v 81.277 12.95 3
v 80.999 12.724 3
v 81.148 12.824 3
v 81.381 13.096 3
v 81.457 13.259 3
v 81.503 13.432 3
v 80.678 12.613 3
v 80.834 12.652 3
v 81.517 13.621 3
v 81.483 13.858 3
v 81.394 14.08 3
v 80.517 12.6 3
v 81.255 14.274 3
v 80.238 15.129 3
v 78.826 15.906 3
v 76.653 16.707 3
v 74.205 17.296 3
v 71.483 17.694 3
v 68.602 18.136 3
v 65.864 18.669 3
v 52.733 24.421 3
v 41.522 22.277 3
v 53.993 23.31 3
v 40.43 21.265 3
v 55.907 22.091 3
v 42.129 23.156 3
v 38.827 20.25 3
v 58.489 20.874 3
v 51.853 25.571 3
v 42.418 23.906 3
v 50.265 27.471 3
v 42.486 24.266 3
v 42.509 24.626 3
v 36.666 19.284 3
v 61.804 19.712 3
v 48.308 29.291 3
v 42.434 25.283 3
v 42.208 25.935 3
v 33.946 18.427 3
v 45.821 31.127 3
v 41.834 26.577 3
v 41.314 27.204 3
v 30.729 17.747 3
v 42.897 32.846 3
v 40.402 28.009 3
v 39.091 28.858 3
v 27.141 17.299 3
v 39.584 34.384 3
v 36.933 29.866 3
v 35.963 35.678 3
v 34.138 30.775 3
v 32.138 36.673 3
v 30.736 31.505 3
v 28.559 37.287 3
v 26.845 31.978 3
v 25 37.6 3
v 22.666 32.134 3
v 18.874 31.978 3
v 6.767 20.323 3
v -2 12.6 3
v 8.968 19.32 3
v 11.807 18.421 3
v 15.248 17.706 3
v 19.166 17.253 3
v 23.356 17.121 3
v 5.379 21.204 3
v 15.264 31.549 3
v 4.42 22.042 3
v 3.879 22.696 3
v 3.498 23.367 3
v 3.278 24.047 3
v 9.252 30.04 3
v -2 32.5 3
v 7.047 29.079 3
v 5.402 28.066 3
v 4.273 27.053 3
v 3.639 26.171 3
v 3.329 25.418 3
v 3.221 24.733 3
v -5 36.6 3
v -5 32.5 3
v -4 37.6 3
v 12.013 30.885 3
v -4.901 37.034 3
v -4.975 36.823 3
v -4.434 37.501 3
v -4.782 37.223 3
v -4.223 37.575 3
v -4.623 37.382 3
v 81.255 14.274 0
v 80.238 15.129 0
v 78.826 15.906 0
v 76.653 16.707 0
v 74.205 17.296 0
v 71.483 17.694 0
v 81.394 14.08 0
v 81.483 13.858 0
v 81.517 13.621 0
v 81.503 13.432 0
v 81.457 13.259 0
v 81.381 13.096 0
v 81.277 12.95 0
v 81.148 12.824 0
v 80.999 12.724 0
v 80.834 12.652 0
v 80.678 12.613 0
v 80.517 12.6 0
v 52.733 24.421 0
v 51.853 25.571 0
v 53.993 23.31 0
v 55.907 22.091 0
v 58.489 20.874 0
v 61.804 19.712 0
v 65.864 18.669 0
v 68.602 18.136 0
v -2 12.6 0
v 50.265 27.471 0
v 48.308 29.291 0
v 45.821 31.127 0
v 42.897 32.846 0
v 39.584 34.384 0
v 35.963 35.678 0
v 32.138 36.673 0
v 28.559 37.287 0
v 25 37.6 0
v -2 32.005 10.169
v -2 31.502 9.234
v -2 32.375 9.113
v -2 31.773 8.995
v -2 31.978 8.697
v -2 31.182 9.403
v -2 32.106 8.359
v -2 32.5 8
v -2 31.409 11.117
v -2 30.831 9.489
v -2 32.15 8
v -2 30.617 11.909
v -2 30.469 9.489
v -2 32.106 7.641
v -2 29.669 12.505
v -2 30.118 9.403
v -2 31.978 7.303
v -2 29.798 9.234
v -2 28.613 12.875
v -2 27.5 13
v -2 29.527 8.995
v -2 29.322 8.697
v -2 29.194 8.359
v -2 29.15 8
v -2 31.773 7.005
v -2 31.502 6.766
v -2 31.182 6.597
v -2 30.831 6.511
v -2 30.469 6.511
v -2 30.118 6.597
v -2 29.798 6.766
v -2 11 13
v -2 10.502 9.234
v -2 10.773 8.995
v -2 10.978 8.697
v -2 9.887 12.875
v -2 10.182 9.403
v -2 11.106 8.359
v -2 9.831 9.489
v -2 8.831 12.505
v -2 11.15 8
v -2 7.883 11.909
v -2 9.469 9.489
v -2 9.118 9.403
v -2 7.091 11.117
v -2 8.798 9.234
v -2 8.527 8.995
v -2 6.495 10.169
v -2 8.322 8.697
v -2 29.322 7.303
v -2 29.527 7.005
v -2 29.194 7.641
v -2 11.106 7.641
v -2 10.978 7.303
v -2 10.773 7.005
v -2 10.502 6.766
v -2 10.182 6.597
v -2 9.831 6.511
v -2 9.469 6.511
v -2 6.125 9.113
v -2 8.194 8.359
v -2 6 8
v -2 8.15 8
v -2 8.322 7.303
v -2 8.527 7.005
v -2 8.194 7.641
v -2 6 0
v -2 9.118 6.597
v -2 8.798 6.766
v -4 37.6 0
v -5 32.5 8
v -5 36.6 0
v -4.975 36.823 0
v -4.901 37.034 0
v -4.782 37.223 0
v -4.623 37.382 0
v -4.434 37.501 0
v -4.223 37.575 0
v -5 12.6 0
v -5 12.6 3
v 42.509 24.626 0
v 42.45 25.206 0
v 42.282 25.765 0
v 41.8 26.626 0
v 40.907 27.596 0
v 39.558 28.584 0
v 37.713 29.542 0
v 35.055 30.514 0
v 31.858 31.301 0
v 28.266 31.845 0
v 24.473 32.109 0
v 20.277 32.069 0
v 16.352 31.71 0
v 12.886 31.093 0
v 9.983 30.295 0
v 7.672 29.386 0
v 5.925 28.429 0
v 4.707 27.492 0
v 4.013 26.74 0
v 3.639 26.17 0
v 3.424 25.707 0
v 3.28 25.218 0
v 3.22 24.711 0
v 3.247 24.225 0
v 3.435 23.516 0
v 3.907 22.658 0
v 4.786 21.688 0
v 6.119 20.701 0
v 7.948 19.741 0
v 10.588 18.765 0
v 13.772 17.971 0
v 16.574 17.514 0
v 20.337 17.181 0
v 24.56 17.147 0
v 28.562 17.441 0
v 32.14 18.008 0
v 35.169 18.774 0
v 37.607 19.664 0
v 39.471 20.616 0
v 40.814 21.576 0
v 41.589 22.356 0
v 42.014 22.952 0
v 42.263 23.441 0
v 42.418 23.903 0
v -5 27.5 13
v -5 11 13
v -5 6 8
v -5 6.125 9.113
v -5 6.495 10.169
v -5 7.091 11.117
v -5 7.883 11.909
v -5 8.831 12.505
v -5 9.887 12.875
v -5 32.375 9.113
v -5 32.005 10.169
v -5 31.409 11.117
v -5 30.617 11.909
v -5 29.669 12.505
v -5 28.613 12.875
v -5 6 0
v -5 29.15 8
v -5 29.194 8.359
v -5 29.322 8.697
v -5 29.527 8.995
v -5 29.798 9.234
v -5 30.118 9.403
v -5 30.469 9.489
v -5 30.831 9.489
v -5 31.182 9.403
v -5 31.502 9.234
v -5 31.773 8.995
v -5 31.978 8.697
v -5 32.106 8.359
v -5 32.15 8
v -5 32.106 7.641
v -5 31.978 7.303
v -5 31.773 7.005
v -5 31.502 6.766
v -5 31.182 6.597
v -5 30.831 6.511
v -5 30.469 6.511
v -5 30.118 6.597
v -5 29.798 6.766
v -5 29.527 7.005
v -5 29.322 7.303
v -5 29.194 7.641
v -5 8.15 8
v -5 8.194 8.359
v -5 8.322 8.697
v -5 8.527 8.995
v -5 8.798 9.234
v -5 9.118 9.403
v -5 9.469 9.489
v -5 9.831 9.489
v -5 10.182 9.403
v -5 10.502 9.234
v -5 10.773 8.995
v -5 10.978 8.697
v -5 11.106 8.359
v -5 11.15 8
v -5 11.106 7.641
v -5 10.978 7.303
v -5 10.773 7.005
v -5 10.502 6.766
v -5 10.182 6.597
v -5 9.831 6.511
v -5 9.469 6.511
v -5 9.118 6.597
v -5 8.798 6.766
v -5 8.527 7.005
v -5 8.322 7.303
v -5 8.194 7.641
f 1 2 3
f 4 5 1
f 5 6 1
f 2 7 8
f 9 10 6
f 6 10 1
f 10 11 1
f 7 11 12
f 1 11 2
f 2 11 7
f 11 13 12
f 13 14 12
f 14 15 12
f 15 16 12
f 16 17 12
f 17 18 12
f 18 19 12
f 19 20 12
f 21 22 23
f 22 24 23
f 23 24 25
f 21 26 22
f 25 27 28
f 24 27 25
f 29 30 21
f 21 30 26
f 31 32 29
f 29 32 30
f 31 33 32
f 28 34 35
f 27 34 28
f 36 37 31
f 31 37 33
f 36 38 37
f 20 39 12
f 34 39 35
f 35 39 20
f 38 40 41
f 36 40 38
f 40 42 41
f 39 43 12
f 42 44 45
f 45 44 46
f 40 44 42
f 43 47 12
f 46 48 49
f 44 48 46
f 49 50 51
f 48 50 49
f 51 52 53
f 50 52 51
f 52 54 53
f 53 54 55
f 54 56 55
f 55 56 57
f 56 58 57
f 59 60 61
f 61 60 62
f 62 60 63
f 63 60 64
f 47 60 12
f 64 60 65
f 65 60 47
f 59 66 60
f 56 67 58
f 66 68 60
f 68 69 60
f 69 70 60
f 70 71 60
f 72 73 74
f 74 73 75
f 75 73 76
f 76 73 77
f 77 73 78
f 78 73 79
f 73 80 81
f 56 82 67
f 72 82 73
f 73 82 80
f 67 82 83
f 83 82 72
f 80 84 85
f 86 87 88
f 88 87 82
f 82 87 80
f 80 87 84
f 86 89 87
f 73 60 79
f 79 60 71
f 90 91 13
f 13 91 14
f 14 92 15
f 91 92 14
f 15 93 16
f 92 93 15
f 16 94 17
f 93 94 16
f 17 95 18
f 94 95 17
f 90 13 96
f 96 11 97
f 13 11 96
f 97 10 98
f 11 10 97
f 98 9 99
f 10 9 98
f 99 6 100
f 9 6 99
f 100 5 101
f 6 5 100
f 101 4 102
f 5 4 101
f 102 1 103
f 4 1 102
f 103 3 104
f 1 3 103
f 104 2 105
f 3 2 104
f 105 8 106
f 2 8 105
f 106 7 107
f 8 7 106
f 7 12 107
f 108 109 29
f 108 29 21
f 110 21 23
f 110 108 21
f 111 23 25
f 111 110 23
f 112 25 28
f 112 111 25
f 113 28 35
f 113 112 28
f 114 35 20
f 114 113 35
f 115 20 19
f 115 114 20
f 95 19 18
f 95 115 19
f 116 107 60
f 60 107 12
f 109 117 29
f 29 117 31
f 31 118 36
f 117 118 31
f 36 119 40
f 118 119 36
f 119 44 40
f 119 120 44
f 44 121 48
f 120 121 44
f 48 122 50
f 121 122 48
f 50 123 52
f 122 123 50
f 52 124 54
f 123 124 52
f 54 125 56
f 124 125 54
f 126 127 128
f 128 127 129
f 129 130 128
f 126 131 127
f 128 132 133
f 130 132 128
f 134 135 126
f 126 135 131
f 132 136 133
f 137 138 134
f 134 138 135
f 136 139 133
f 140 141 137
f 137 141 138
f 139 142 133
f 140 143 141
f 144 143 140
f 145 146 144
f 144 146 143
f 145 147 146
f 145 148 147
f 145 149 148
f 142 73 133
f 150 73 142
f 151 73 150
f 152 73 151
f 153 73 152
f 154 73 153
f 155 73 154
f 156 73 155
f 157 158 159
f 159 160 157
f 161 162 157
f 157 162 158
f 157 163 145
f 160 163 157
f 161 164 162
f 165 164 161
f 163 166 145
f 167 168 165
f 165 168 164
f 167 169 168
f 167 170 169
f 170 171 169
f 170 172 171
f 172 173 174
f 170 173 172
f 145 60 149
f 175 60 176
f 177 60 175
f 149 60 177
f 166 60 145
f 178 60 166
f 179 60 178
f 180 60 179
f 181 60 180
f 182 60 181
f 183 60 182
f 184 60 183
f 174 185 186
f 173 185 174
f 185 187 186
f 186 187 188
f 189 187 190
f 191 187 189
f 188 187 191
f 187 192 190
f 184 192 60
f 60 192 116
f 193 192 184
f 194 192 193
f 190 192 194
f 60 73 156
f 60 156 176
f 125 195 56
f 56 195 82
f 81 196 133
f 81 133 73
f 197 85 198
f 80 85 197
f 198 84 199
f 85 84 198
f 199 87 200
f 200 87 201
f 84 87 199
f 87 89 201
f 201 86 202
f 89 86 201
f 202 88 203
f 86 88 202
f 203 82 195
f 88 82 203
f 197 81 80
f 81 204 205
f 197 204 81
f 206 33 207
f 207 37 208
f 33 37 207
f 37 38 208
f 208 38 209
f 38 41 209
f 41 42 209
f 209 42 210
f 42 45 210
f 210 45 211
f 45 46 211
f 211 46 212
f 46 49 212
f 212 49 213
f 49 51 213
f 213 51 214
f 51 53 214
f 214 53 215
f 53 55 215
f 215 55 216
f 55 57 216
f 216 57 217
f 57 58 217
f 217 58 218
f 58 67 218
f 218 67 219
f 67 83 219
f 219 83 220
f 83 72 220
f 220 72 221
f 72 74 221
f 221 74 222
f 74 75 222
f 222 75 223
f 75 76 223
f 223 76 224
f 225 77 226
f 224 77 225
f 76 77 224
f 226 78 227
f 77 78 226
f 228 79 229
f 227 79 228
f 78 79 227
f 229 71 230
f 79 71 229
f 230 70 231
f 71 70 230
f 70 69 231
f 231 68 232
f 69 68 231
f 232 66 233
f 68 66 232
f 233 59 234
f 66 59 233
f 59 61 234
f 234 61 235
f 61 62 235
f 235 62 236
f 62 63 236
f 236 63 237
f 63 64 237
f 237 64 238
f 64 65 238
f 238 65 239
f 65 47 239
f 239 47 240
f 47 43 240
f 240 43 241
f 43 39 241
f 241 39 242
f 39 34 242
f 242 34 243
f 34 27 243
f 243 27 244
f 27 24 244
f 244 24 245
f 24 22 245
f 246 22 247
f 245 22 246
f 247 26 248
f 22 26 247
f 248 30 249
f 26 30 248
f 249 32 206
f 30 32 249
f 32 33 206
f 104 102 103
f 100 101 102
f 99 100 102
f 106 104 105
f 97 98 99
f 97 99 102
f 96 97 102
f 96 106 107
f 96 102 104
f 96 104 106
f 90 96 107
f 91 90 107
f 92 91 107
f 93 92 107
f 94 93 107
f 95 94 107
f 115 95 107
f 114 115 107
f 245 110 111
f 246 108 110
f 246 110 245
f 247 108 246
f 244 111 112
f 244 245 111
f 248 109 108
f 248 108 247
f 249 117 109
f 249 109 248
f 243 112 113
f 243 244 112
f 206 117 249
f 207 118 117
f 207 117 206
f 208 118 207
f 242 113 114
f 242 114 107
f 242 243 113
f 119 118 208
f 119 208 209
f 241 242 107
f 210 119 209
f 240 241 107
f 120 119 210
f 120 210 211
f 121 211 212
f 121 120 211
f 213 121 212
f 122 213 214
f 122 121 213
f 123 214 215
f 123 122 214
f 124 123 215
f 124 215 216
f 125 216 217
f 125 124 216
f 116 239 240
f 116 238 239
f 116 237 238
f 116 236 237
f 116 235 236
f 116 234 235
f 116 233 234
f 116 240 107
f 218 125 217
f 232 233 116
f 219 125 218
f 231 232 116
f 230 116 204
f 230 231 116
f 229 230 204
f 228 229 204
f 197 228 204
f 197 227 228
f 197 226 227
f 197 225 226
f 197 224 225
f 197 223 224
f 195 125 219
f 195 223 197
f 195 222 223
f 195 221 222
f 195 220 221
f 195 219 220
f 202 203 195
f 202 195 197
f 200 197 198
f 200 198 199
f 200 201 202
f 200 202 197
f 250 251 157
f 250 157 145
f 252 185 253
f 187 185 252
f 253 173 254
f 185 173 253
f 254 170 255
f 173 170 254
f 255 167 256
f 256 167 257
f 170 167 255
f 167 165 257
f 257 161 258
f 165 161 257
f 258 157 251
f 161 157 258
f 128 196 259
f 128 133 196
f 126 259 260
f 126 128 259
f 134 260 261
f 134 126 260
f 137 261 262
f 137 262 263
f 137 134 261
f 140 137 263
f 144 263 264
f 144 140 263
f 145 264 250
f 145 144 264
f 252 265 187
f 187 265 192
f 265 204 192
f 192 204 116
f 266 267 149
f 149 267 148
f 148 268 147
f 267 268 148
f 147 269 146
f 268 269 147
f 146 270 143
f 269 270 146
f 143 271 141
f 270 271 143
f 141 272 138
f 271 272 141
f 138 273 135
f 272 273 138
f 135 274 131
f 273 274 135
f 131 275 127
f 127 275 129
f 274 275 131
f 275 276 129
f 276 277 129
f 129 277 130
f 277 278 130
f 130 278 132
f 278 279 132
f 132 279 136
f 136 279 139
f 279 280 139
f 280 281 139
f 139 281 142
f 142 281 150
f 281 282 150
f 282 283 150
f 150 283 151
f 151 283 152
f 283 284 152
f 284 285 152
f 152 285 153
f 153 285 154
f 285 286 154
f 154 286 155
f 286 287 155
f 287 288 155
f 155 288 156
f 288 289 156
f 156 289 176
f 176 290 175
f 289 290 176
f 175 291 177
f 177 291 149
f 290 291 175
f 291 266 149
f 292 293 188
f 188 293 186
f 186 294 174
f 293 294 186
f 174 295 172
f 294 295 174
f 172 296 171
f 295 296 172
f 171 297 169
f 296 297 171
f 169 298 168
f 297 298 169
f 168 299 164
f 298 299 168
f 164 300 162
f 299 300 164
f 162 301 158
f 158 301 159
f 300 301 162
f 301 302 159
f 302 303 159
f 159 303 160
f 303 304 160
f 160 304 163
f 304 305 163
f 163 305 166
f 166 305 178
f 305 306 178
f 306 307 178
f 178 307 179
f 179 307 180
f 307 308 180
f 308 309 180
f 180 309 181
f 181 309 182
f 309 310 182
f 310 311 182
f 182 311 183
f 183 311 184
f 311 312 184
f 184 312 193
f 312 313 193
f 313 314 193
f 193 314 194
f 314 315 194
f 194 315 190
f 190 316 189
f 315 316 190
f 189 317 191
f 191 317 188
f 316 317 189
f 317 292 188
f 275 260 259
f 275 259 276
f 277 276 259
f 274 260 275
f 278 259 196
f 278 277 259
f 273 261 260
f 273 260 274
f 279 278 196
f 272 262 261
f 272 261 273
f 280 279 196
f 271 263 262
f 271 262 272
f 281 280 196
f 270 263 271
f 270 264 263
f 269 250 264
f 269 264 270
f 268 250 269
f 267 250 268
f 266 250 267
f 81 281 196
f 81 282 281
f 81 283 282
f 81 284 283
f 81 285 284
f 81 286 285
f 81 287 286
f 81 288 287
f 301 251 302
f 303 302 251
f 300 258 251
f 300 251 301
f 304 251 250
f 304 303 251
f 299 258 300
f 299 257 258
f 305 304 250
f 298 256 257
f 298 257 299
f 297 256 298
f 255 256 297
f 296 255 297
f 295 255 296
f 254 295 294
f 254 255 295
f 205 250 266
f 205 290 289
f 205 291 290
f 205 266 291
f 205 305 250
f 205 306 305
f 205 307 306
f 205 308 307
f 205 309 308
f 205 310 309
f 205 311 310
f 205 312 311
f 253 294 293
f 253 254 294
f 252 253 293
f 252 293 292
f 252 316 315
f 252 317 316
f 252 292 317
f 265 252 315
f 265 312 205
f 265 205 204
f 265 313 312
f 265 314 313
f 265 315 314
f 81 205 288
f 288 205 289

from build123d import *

# Parameters (mm, degrees)
PAD_DEPTH       = 3
PAD001_DEPTH    = 3
SKETCH002_R     = 1.5
POCKET_DEPTH    = 87.001
FILLET_R        = 5
FILLET001_R     = 1
FILLET002_R     = 1
POCKET001_DEPTH = 3.001


with BuildPart() as part:
    # Sketch → Pad (new body)
    with BuildSketch(Plane.XY):
        with BuildLine():
            add(Edge.make_bspline(
                [(51.853394, 25.571164), (55.204963, 19.874337), (71.483025, 17.693934)],
                knots=[0.193339, 0.193339, 0.193339, 1.192903, 1.192903, 1.192903], degree=2, weights=[1, 0.877687, 1]))
            add(Edge.make_bspline(
                [(82, 12.6), (82, 16.588853), (71.483025, 17.693934)],
                knots=[0, 0, 0, 1.290082, 1.290082, 1.290082], degree=2, weights=[1, 0.799075, 1]))
            Line((82, 12.6), (-5, 12.6))
            Line((-5, 12.6), (-5, 37.6))
            Line((-5, 37.6), (25, 37.6))
            add(Edge.make_bspline(
                [(51.853394, 25.571164), (43.781991, 36.749326), (25, 37.6)],
                knots=[0.559458, 0.559458, 0.559458, 1.875387, 1.875387, 1.875387], degree=2, weights=[1, 0.791239, 1]))
        make_face()
    extrude(amount=PAD_DEPTH)

    # Sketch001 (on Face4 of Pad) → Pad001 (join)
    with BuildSketch(Plane(origin=(-5, 0, 0), x_dir=(0, -1, 0), z_dir=(-1, 0, 0))):
        Polygon((-6, 13), (-32.5, 13), (-32.5, 3), (-12.6, 3), (-12.6, 0), (-6, 0), align=None)
    extrude(amount=-PAD001_DEPTH)

    # Sketch002 (on Face13 of Pad001) → Pocket (cut, through all)
    with BuildSketch(Plane(origin=(-5, 0, 0), x_dir=(0, -1, 0), z_dir=(-1, 0, 0))):
        with Locations((-30.65, 8)):
            Circle(SKETCH002_R)
        with Locations((-9.65, 8)):
            Circle(SKETCH002_R)
    extrude(amount=-POCKET_DEPTH, mode=Mode.SUBTRACT)

    # Fillet
    fillet_edges = [part.edges().sort_by_distance(p)[0] for p in [
        (-3.5, 6, 13),
        (-3.5, 32.5, 13),
    ]]
    fillet(fillet_edges, radius=FILLET_R)

    # Fillet001
    fillet001_edges = [part.edges().sort_by_distance(p)[0] for p in [
        (-5, 37.6, 1.5),
    ]]
    fillet(fillet001_edges, radius=FILLET001_R)

    # Fillet002
    fillet002_edges = [part.edges().sort_by_distance(p)[0] for p in [
        (82, 12.6, 1.5),
    ]]
    fillet(fillet002_edges, radius=FILLET002_R)

    # Sketch003 (on Face1 of Fillet002) → Pocket001 (cut, through all)
    with BuildSketch(Plane.XY.offset(3)):
        with BuildLine():
            add(Edge.make_bspline(
                [(42.509006, 24.626344), (42.509006, 37.629993), (13.041572, 31.128168), (-16.425863, 24.626344), (13.041572, 18.124519), (42.509006, 11.622694), (42.509006, 24.626344)],
                knots=[0, 0, 0, 2.094395, 2.094395, 4.18879, 4.18879, 6.283185, 6.283185, 6.283185], degree=2, weights=[1, 0.5, 1, 0.5, 1, 0.5, 1]))
        make_face()
    extrude(amount=-POCKET001_DEPTH, mode=Mode.SUBTRACT)


solid = part.part
